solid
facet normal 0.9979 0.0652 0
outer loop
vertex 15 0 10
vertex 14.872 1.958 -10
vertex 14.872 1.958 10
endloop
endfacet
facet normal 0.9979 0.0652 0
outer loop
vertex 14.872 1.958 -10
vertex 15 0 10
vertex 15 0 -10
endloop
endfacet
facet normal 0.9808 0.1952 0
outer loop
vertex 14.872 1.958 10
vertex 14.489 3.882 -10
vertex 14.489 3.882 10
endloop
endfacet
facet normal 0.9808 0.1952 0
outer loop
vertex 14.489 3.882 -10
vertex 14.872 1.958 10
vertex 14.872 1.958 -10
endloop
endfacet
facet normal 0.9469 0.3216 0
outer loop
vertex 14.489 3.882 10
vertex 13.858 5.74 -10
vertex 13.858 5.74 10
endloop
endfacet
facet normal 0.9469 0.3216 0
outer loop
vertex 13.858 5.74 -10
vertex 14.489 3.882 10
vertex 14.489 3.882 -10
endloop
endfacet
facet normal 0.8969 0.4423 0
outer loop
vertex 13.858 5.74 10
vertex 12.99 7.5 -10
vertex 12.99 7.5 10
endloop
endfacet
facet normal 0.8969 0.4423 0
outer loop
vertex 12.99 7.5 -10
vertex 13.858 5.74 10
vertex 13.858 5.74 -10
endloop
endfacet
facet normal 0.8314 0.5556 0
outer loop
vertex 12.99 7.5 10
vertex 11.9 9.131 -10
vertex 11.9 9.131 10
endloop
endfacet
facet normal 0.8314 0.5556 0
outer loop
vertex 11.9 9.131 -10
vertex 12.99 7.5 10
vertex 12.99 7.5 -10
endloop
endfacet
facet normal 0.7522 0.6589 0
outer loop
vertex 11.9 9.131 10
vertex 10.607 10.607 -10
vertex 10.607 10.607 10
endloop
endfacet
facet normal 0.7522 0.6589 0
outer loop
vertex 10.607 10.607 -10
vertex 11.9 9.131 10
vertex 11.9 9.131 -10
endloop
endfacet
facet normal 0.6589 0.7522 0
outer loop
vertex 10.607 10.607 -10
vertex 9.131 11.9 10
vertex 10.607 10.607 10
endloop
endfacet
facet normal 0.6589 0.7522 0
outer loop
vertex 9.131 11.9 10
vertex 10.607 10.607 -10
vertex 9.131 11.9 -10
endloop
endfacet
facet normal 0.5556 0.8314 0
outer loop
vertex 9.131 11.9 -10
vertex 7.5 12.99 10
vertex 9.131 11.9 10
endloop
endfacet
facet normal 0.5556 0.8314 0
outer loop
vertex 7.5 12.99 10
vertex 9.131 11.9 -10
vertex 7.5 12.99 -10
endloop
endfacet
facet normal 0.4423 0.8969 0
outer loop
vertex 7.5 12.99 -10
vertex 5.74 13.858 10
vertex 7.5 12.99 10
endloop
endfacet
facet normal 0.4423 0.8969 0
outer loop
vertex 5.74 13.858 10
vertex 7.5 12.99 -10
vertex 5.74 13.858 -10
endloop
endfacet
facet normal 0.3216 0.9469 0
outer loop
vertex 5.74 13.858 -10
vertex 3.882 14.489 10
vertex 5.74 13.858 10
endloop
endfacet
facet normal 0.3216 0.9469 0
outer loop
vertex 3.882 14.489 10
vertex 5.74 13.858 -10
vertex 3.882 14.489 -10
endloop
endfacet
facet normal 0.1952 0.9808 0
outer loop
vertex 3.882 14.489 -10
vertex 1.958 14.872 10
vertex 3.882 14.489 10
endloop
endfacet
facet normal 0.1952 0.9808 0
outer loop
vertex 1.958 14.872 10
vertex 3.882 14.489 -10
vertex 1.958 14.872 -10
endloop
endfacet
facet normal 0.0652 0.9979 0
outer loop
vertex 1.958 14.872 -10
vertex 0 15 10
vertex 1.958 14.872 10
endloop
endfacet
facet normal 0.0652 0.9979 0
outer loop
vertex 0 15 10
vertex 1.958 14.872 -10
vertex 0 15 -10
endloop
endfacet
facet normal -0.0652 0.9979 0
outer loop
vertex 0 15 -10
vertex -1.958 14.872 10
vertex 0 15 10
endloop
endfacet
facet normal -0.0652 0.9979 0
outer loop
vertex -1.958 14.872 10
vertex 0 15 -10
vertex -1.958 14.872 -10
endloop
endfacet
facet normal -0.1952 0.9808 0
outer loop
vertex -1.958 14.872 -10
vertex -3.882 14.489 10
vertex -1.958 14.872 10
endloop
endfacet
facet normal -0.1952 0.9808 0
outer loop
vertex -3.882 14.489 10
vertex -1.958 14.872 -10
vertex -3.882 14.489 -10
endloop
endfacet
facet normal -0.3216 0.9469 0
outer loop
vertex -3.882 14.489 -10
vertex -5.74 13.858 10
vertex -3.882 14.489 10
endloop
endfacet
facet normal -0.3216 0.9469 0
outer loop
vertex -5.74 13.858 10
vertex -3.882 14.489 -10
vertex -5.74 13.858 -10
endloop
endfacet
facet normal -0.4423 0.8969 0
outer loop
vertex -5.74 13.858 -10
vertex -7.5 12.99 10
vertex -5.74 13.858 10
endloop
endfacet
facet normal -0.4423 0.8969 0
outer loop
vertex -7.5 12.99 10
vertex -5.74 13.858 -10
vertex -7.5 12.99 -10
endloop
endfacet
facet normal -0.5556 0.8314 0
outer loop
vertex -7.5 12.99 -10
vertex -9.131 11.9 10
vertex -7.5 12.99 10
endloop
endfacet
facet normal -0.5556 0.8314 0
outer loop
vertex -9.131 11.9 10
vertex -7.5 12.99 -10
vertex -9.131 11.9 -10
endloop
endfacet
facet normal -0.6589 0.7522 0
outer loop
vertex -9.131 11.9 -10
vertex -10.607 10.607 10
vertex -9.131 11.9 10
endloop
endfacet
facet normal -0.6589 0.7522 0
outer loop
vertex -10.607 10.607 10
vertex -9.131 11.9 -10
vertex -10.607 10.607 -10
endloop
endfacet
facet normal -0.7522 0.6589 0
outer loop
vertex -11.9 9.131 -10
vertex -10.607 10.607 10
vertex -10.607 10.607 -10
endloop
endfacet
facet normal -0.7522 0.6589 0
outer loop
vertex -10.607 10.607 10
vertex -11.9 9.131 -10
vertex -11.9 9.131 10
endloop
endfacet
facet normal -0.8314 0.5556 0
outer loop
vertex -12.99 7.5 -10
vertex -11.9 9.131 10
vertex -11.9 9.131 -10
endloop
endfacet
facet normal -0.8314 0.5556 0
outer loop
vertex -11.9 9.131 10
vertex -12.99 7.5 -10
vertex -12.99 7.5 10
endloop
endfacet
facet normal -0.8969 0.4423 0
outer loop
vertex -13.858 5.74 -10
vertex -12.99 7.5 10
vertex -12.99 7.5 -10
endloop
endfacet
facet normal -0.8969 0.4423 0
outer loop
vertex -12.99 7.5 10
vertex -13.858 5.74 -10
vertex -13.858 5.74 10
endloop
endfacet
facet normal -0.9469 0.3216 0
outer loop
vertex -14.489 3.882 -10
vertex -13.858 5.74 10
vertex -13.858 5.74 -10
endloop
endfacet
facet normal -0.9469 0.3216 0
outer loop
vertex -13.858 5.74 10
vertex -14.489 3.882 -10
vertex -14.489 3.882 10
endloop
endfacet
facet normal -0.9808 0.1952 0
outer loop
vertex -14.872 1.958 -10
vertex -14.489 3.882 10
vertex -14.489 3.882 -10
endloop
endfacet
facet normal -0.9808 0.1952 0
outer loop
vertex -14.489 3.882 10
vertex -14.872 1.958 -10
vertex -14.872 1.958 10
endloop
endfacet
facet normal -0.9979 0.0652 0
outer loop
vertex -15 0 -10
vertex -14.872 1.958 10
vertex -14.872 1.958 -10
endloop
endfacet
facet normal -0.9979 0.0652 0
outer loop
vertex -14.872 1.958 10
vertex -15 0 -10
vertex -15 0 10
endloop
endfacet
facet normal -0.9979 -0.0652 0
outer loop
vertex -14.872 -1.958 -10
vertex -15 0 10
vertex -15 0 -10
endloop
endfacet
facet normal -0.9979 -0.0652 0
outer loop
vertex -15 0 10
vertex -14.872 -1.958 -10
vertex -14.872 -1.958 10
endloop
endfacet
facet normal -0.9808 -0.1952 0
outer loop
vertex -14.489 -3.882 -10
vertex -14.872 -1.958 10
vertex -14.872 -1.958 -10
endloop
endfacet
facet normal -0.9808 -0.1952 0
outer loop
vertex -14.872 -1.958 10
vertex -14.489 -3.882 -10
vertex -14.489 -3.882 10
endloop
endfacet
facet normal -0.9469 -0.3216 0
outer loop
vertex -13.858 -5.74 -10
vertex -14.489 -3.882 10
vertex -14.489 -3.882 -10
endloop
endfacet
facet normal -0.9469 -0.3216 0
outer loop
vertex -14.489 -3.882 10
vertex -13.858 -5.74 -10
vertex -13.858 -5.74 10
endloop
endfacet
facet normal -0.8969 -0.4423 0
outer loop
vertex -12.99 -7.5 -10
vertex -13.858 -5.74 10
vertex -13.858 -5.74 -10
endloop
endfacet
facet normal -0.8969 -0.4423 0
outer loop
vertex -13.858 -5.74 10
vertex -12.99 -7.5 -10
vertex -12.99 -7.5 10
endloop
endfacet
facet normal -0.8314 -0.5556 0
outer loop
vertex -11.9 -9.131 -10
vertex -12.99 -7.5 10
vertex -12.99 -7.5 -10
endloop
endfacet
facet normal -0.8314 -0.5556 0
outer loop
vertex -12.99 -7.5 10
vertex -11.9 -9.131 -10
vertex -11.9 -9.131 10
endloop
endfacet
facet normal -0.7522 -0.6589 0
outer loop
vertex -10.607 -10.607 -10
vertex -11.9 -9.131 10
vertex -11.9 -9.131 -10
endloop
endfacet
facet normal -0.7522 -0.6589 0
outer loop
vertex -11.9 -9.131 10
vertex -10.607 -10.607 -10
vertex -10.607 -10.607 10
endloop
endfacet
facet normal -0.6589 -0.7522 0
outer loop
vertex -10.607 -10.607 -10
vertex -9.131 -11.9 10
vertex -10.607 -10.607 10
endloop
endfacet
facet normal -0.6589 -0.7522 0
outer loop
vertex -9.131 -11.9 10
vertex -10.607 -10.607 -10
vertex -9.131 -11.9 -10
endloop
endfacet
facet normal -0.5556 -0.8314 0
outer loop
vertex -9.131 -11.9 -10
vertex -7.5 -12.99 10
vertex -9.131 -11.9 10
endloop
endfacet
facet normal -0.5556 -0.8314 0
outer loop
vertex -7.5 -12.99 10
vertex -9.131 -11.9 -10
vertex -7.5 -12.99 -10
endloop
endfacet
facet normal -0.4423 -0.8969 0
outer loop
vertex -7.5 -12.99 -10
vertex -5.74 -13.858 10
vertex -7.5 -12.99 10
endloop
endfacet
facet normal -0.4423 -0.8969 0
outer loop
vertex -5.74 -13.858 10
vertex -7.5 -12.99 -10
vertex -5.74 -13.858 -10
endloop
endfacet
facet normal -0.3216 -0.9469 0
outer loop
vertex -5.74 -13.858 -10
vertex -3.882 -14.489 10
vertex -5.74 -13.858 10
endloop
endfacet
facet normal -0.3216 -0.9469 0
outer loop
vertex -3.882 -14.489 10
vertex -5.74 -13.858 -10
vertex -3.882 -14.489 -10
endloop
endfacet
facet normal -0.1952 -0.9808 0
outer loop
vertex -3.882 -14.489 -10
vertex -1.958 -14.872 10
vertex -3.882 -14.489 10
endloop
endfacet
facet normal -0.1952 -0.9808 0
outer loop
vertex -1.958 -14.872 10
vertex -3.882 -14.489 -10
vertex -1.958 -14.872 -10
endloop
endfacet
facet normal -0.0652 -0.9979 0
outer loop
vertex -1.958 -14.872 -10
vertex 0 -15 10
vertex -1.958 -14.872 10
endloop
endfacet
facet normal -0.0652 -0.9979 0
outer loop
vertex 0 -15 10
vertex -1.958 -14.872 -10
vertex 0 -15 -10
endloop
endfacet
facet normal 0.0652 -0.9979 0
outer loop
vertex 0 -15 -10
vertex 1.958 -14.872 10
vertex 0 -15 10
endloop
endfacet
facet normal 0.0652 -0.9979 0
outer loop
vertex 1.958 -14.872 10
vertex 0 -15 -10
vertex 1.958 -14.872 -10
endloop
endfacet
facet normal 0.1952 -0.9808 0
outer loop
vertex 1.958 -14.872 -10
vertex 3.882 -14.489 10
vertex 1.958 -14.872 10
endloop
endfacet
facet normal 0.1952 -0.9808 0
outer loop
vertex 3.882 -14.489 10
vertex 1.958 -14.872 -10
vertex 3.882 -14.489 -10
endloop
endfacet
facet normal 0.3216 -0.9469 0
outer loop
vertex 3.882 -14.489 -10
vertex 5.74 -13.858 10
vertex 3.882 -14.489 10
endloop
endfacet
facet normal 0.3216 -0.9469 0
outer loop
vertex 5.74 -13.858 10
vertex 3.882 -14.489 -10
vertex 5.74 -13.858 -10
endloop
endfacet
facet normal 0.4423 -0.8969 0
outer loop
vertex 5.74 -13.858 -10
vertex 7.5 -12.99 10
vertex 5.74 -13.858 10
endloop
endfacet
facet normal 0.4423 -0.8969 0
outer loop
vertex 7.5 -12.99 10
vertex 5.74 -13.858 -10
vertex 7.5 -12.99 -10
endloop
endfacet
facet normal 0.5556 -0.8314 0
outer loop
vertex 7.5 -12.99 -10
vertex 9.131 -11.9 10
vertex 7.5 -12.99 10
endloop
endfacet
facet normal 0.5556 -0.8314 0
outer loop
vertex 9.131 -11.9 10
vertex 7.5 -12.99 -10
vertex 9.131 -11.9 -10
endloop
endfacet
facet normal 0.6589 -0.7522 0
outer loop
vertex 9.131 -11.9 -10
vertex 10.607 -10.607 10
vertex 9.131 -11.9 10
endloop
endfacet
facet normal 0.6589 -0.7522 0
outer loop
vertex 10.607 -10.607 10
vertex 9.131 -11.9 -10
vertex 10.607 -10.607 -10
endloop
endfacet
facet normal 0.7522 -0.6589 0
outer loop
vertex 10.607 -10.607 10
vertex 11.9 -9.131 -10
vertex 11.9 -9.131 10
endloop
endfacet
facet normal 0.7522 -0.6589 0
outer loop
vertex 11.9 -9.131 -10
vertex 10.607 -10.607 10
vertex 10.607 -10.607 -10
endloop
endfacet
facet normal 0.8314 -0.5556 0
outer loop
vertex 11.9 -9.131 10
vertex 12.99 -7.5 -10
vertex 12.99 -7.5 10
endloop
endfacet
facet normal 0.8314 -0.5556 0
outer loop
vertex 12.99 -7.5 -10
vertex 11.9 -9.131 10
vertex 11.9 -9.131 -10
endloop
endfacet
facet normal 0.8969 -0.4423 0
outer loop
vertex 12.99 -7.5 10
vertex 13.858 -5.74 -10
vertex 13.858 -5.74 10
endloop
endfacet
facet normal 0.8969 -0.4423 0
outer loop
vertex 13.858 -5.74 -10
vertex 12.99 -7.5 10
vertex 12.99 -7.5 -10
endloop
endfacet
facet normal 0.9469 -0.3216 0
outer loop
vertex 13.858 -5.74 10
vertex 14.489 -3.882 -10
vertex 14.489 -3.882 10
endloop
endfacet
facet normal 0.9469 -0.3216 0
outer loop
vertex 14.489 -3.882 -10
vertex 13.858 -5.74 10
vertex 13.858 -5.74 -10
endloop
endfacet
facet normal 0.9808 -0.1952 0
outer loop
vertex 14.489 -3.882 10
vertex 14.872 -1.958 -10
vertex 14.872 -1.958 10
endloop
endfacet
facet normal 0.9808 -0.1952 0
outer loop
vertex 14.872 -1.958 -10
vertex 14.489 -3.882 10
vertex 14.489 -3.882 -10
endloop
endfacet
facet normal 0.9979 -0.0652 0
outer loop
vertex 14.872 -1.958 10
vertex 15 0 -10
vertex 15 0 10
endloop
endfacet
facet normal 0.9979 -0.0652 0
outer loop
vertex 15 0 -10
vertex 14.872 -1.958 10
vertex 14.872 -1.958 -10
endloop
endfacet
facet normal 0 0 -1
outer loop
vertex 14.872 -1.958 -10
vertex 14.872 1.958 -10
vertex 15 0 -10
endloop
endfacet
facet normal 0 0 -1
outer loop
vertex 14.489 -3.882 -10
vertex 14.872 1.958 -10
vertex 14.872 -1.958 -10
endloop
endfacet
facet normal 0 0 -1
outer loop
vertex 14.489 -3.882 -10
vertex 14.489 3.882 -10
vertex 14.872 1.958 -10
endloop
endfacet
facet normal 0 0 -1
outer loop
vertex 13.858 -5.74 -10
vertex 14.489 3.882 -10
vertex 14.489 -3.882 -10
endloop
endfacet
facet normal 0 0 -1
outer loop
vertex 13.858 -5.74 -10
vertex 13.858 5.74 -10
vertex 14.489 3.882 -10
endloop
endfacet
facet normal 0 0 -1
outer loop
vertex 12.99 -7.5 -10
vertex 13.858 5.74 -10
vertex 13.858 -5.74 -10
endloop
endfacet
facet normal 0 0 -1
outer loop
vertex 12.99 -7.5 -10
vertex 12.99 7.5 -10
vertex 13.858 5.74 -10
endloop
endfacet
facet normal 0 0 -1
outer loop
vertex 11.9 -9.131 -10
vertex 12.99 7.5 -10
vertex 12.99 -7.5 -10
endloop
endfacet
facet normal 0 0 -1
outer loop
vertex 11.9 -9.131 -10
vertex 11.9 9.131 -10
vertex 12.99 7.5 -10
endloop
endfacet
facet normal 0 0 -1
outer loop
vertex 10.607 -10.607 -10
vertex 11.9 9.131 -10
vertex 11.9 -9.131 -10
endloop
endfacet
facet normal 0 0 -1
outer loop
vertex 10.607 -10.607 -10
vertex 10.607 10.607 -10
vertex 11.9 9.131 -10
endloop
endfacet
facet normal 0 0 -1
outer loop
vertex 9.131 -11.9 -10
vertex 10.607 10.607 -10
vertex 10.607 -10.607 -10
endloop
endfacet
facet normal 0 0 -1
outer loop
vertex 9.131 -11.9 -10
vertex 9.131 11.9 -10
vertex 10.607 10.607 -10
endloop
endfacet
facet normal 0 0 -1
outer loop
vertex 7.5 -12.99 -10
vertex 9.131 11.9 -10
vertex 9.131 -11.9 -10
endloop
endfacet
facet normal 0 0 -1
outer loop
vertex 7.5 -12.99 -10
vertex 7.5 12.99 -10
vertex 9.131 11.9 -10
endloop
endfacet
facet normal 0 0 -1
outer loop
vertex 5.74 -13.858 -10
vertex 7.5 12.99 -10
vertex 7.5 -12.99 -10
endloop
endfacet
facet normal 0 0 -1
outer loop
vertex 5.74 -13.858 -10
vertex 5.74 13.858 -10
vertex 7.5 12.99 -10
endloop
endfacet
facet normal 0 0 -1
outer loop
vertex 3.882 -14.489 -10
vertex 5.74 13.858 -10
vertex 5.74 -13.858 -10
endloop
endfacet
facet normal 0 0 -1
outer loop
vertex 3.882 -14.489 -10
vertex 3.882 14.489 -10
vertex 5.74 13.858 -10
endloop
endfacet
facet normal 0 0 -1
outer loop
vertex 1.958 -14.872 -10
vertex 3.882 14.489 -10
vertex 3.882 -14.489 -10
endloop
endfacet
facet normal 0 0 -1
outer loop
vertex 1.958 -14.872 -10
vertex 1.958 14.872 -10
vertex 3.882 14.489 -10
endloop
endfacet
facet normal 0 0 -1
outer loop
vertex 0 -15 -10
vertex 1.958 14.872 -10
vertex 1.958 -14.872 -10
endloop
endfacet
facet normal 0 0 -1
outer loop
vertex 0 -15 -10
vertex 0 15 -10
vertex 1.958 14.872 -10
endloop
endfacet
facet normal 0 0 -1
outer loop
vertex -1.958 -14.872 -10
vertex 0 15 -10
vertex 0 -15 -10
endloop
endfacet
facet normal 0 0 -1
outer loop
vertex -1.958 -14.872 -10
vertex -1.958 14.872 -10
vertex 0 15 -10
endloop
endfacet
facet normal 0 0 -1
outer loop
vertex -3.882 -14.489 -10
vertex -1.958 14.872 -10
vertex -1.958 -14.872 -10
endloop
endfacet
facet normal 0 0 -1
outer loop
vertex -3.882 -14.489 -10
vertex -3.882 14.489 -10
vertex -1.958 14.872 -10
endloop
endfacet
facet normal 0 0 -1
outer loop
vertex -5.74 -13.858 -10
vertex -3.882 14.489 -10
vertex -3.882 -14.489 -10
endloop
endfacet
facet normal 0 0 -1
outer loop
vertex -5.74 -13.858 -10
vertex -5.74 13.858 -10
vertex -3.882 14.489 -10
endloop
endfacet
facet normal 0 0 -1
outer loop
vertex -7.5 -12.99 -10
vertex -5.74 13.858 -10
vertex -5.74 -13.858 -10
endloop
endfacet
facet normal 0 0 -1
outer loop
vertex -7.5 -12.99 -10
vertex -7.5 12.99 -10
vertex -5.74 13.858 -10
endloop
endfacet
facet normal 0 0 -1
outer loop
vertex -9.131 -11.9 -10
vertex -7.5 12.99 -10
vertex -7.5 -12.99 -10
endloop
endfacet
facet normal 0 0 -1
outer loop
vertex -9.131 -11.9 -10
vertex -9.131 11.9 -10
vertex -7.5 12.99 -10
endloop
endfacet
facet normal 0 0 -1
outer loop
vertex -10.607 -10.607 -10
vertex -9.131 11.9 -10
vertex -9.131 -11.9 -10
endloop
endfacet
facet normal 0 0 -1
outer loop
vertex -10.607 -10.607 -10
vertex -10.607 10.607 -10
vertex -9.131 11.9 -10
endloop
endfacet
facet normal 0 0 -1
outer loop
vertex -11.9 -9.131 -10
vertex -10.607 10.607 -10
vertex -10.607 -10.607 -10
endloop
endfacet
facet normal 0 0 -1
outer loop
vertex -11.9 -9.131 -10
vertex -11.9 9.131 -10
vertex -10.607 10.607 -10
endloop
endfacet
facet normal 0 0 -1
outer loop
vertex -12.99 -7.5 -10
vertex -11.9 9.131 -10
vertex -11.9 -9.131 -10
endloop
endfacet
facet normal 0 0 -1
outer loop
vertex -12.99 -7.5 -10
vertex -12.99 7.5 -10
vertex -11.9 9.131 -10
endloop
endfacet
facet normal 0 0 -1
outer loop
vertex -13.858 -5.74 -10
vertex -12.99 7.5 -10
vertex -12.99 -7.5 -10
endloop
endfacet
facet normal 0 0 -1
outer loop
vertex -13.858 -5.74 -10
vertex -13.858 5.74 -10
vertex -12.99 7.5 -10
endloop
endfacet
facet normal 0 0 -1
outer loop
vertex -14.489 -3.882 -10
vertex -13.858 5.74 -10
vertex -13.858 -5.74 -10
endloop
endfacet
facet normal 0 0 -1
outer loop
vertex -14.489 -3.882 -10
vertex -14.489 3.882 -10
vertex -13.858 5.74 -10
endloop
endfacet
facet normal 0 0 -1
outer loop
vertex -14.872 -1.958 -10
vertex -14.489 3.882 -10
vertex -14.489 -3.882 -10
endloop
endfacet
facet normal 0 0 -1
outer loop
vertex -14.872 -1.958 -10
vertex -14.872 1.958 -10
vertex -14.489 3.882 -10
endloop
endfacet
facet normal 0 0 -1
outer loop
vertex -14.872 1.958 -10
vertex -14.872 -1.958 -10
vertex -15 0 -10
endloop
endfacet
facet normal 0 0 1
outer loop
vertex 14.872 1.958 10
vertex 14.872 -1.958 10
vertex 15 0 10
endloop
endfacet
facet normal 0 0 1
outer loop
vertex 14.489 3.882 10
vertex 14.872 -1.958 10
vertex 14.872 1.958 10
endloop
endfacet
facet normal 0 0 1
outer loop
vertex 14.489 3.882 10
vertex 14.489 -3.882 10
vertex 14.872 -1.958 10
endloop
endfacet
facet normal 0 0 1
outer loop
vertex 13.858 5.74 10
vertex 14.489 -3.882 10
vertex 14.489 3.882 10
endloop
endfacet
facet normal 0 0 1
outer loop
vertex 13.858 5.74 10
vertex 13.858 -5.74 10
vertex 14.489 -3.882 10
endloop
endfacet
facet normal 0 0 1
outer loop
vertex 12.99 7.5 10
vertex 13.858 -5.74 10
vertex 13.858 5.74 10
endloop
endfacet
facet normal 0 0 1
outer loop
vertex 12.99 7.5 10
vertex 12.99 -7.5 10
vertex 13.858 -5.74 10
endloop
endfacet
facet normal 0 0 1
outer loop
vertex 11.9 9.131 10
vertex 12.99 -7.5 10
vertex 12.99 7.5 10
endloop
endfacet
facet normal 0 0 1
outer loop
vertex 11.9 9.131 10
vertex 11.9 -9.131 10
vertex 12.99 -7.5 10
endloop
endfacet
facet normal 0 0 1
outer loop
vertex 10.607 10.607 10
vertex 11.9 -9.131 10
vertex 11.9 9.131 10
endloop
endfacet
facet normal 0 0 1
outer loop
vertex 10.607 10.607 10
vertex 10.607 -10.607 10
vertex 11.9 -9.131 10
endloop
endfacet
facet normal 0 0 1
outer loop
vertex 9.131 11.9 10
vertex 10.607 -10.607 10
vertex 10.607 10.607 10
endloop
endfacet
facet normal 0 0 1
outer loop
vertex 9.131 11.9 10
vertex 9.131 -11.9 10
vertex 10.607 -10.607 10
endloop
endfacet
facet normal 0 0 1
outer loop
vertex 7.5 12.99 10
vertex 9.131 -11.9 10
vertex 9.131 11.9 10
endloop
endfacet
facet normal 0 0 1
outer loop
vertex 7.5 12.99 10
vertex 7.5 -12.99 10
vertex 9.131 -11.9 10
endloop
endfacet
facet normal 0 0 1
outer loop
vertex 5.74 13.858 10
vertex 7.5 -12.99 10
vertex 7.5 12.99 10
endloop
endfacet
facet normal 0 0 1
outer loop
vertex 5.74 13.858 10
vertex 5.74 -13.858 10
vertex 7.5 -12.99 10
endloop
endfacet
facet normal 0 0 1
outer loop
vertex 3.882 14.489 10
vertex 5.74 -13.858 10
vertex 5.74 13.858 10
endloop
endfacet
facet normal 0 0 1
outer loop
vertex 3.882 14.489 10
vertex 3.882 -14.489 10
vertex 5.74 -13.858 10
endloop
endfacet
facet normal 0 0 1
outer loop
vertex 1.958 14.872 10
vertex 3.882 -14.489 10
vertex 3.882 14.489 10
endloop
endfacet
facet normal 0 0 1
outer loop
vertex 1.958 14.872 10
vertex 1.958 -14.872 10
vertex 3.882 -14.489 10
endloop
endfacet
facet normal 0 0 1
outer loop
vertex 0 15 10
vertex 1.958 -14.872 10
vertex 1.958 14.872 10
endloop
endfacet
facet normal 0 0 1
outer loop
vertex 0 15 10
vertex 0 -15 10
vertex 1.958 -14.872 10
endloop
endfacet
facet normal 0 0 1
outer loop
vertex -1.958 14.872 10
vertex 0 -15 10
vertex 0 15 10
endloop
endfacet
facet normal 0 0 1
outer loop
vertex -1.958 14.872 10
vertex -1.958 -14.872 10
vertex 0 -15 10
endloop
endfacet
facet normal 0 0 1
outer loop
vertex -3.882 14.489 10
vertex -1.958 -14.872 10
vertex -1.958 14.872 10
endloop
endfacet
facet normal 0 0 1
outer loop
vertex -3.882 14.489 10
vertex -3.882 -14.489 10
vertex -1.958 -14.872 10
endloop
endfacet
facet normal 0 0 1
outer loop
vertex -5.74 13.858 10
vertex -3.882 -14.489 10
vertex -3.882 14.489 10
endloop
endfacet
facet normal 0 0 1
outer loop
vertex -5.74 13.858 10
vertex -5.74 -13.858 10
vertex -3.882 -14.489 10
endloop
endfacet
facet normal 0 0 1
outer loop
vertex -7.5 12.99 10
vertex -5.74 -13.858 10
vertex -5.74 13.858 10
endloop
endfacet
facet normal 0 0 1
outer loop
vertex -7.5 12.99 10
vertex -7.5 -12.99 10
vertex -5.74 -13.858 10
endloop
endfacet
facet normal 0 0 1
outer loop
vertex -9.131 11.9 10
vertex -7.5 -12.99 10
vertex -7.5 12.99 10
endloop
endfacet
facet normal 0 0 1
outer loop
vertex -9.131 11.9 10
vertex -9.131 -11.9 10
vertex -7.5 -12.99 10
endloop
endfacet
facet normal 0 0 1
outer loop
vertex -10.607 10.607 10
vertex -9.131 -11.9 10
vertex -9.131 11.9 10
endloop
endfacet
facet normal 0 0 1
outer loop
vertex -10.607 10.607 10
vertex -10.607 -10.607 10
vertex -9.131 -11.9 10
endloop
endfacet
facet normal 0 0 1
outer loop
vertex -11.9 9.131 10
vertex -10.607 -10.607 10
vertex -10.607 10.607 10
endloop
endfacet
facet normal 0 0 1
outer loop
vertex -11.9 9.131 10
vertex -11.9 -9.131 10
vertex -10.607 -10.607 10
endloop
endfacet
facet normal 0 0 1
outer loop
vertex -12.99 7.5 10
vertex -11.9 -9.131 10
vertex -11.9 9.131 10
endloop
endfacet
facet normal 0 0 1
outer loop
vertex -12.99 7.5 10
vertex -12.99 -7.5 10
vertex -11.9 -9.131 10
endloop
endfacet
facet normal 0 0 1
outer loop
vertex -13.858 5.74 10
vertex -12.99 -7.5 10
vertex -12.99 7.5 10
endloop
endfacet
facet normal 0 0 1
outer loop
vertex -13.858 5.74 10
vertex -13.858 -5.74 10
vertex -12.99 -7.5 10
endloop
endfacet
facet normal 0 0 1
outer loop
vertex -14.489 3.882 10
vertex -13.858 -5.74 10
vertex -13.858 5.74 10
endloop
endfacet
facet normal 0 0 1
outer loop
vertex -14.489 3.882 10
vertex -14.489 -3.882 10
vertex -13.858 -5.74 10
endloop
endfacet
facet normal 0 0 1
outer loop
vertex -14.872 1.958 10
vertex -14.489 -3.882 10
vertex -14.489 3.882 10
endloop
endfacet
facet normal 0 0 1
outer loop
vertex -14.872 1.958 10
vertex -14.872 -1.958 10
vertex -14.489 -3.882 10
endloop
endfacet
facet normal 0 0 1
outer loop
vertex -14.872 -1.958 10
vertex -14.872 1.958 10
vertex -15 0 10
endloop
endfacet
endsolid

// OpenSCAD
// ========================================
// a cylinder with radius 15 mm and height 20 mm
// NeuroCAD canonical IR; dimensions are millimetres
// ========================================
$fn = 48;

cylinder(r=15, h=20, center=true);
